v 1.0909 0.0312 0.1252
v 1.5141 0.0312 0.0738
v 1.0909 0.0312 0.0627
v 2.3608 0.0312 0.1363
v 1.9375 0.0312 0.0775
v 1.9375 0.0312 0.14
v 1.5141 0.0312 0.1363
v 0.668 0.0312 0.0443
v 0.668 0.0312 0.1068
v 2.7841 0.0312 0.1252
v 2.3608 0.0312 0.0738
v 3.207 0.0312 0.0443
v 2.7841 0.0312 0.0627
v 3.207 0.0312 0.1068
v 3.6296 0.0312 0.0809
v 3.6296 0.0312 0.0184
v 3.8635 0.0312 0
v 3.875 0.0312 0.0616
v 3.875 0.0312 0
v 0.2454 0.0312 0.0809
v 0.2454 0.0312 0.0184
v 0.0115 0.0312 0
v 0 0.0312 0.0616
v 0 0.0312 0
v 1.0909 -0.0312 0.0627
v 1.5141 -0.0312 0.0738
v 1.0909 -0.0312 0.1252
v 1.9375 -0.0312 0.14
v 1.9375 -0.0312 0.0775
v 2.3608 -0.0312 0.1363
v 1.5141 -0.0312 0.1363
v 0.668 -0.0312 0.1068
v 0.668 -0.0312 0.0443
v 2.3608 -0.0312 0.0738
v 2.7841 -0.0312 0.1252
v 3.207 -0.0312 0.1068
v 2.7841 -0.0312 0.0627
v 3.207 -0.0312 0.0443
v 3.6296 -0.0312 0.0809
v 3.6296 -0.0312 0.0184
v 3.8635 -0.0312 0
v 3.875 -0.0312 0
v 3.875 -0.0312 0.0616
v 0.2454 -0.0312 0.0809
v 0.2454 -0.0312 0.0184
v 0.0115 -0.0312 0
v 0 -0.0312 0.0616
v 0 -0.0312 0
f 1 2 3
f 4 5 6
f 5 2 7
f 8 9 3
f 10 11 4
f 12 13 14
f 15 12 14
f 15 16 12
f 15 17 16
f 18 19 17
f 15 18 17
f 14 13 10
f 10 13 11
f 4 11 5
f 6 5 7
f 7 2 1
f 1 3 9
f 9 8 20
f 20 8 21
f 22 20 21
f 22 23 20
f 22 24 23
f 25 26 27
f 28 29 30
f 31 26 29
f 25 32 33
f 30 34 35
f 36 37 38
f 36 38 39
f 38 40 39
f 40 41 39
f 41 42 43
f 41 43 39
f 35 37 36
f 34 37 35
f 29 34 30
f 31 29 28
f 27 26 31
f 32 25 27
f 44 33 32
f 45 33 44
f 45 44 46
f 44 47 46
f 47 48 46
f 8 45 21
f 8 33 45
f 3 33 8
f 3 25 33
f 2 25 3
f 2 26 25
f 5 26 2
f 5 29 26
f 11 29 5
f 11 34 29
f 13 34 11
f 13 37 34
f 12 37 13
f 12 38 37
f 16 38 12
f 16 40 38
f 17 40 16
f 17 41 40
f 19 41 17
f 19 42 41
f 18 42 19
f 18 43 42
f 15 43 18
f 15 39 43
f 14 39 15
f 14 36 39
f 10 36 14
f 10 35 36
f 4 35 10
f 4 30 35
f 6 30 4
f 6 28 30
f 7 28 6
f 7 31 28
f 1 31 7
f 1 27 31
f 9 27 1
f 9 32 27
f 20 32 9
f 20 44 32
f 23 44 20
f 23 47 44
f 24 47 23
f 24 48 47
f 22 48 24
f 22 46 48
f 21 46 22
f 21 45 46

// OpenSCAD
// file: ../../../constraints.scad
//####################################
// Math-Magik LPP - Design Constraints
// (c) 2021 by Roie R. Black
//====================================

// AMA Rules for event 208
//------------------------------------

max_overall_length = 20;
max_projected_wing_span = 18;
max_bearing_to_rear_hook = 10;
max_wing_chord = 5;
max_stab_span = 12;
max_stab_chord = 4;
max_prop_diameter = 12;
// file: MMlib/circle_template_rib.scad
//####################################
// rib.scad - circle template rib
// (c) 2021 by Roie R. Black
//====================================
$fn=360;
module circle_template_rib(chord,camber,height,thickness) {

  // calculate the radius for this arc
  camber = chord * camber / 100;
  radius = (chord * chord) / (8 * camber) + camber/2;
  // generate the rib
  translate([0,thickness/2,0])
    rotate([90,0,0])
      linear_extrude(height = thickness) {
        intersection() {
          difference() {
            square([chord,1]);
            translate([chord/2, -radius + camber]) circle(r=radius);
          }
          translate([chord/2, -radius + camber + height]) circle(r=radius);
        }
      }
}
//====================================
// display this shape

circle_template_rib(5,4,1/16,1/32);
// file: ../../stab_data.scad
//#####################################
// stab.data
// (c) 2021 by Roie R. Black
//=====================================
include <../constraints.scad>

// center section dimensions
center_span = 6;
spar_size = 1/16;
rib_chord = max_stab_chord - 2 * spar_size;
rib_camber = 2;
num_center_ribs = 3;

// tip section dimensions
tip_span = (max_stab_span - center_span)/2;
tip_radius = 1.5;
tip_le_span = tip_span - tip_radius;
tip_rib_chord = max_stab_chord - tip_radius - spar_size;
// main file
//###################################################
// rib.scad
// (c) 2021 - Roie R. Black
//***************************************************
include <../../stab_data.scad>

use <MMlib/circle_template_rib.scad>

module rib() {
    circle_template_rib(rib_chord, rib_camber, spar_size, spar_size);
}

rib();
